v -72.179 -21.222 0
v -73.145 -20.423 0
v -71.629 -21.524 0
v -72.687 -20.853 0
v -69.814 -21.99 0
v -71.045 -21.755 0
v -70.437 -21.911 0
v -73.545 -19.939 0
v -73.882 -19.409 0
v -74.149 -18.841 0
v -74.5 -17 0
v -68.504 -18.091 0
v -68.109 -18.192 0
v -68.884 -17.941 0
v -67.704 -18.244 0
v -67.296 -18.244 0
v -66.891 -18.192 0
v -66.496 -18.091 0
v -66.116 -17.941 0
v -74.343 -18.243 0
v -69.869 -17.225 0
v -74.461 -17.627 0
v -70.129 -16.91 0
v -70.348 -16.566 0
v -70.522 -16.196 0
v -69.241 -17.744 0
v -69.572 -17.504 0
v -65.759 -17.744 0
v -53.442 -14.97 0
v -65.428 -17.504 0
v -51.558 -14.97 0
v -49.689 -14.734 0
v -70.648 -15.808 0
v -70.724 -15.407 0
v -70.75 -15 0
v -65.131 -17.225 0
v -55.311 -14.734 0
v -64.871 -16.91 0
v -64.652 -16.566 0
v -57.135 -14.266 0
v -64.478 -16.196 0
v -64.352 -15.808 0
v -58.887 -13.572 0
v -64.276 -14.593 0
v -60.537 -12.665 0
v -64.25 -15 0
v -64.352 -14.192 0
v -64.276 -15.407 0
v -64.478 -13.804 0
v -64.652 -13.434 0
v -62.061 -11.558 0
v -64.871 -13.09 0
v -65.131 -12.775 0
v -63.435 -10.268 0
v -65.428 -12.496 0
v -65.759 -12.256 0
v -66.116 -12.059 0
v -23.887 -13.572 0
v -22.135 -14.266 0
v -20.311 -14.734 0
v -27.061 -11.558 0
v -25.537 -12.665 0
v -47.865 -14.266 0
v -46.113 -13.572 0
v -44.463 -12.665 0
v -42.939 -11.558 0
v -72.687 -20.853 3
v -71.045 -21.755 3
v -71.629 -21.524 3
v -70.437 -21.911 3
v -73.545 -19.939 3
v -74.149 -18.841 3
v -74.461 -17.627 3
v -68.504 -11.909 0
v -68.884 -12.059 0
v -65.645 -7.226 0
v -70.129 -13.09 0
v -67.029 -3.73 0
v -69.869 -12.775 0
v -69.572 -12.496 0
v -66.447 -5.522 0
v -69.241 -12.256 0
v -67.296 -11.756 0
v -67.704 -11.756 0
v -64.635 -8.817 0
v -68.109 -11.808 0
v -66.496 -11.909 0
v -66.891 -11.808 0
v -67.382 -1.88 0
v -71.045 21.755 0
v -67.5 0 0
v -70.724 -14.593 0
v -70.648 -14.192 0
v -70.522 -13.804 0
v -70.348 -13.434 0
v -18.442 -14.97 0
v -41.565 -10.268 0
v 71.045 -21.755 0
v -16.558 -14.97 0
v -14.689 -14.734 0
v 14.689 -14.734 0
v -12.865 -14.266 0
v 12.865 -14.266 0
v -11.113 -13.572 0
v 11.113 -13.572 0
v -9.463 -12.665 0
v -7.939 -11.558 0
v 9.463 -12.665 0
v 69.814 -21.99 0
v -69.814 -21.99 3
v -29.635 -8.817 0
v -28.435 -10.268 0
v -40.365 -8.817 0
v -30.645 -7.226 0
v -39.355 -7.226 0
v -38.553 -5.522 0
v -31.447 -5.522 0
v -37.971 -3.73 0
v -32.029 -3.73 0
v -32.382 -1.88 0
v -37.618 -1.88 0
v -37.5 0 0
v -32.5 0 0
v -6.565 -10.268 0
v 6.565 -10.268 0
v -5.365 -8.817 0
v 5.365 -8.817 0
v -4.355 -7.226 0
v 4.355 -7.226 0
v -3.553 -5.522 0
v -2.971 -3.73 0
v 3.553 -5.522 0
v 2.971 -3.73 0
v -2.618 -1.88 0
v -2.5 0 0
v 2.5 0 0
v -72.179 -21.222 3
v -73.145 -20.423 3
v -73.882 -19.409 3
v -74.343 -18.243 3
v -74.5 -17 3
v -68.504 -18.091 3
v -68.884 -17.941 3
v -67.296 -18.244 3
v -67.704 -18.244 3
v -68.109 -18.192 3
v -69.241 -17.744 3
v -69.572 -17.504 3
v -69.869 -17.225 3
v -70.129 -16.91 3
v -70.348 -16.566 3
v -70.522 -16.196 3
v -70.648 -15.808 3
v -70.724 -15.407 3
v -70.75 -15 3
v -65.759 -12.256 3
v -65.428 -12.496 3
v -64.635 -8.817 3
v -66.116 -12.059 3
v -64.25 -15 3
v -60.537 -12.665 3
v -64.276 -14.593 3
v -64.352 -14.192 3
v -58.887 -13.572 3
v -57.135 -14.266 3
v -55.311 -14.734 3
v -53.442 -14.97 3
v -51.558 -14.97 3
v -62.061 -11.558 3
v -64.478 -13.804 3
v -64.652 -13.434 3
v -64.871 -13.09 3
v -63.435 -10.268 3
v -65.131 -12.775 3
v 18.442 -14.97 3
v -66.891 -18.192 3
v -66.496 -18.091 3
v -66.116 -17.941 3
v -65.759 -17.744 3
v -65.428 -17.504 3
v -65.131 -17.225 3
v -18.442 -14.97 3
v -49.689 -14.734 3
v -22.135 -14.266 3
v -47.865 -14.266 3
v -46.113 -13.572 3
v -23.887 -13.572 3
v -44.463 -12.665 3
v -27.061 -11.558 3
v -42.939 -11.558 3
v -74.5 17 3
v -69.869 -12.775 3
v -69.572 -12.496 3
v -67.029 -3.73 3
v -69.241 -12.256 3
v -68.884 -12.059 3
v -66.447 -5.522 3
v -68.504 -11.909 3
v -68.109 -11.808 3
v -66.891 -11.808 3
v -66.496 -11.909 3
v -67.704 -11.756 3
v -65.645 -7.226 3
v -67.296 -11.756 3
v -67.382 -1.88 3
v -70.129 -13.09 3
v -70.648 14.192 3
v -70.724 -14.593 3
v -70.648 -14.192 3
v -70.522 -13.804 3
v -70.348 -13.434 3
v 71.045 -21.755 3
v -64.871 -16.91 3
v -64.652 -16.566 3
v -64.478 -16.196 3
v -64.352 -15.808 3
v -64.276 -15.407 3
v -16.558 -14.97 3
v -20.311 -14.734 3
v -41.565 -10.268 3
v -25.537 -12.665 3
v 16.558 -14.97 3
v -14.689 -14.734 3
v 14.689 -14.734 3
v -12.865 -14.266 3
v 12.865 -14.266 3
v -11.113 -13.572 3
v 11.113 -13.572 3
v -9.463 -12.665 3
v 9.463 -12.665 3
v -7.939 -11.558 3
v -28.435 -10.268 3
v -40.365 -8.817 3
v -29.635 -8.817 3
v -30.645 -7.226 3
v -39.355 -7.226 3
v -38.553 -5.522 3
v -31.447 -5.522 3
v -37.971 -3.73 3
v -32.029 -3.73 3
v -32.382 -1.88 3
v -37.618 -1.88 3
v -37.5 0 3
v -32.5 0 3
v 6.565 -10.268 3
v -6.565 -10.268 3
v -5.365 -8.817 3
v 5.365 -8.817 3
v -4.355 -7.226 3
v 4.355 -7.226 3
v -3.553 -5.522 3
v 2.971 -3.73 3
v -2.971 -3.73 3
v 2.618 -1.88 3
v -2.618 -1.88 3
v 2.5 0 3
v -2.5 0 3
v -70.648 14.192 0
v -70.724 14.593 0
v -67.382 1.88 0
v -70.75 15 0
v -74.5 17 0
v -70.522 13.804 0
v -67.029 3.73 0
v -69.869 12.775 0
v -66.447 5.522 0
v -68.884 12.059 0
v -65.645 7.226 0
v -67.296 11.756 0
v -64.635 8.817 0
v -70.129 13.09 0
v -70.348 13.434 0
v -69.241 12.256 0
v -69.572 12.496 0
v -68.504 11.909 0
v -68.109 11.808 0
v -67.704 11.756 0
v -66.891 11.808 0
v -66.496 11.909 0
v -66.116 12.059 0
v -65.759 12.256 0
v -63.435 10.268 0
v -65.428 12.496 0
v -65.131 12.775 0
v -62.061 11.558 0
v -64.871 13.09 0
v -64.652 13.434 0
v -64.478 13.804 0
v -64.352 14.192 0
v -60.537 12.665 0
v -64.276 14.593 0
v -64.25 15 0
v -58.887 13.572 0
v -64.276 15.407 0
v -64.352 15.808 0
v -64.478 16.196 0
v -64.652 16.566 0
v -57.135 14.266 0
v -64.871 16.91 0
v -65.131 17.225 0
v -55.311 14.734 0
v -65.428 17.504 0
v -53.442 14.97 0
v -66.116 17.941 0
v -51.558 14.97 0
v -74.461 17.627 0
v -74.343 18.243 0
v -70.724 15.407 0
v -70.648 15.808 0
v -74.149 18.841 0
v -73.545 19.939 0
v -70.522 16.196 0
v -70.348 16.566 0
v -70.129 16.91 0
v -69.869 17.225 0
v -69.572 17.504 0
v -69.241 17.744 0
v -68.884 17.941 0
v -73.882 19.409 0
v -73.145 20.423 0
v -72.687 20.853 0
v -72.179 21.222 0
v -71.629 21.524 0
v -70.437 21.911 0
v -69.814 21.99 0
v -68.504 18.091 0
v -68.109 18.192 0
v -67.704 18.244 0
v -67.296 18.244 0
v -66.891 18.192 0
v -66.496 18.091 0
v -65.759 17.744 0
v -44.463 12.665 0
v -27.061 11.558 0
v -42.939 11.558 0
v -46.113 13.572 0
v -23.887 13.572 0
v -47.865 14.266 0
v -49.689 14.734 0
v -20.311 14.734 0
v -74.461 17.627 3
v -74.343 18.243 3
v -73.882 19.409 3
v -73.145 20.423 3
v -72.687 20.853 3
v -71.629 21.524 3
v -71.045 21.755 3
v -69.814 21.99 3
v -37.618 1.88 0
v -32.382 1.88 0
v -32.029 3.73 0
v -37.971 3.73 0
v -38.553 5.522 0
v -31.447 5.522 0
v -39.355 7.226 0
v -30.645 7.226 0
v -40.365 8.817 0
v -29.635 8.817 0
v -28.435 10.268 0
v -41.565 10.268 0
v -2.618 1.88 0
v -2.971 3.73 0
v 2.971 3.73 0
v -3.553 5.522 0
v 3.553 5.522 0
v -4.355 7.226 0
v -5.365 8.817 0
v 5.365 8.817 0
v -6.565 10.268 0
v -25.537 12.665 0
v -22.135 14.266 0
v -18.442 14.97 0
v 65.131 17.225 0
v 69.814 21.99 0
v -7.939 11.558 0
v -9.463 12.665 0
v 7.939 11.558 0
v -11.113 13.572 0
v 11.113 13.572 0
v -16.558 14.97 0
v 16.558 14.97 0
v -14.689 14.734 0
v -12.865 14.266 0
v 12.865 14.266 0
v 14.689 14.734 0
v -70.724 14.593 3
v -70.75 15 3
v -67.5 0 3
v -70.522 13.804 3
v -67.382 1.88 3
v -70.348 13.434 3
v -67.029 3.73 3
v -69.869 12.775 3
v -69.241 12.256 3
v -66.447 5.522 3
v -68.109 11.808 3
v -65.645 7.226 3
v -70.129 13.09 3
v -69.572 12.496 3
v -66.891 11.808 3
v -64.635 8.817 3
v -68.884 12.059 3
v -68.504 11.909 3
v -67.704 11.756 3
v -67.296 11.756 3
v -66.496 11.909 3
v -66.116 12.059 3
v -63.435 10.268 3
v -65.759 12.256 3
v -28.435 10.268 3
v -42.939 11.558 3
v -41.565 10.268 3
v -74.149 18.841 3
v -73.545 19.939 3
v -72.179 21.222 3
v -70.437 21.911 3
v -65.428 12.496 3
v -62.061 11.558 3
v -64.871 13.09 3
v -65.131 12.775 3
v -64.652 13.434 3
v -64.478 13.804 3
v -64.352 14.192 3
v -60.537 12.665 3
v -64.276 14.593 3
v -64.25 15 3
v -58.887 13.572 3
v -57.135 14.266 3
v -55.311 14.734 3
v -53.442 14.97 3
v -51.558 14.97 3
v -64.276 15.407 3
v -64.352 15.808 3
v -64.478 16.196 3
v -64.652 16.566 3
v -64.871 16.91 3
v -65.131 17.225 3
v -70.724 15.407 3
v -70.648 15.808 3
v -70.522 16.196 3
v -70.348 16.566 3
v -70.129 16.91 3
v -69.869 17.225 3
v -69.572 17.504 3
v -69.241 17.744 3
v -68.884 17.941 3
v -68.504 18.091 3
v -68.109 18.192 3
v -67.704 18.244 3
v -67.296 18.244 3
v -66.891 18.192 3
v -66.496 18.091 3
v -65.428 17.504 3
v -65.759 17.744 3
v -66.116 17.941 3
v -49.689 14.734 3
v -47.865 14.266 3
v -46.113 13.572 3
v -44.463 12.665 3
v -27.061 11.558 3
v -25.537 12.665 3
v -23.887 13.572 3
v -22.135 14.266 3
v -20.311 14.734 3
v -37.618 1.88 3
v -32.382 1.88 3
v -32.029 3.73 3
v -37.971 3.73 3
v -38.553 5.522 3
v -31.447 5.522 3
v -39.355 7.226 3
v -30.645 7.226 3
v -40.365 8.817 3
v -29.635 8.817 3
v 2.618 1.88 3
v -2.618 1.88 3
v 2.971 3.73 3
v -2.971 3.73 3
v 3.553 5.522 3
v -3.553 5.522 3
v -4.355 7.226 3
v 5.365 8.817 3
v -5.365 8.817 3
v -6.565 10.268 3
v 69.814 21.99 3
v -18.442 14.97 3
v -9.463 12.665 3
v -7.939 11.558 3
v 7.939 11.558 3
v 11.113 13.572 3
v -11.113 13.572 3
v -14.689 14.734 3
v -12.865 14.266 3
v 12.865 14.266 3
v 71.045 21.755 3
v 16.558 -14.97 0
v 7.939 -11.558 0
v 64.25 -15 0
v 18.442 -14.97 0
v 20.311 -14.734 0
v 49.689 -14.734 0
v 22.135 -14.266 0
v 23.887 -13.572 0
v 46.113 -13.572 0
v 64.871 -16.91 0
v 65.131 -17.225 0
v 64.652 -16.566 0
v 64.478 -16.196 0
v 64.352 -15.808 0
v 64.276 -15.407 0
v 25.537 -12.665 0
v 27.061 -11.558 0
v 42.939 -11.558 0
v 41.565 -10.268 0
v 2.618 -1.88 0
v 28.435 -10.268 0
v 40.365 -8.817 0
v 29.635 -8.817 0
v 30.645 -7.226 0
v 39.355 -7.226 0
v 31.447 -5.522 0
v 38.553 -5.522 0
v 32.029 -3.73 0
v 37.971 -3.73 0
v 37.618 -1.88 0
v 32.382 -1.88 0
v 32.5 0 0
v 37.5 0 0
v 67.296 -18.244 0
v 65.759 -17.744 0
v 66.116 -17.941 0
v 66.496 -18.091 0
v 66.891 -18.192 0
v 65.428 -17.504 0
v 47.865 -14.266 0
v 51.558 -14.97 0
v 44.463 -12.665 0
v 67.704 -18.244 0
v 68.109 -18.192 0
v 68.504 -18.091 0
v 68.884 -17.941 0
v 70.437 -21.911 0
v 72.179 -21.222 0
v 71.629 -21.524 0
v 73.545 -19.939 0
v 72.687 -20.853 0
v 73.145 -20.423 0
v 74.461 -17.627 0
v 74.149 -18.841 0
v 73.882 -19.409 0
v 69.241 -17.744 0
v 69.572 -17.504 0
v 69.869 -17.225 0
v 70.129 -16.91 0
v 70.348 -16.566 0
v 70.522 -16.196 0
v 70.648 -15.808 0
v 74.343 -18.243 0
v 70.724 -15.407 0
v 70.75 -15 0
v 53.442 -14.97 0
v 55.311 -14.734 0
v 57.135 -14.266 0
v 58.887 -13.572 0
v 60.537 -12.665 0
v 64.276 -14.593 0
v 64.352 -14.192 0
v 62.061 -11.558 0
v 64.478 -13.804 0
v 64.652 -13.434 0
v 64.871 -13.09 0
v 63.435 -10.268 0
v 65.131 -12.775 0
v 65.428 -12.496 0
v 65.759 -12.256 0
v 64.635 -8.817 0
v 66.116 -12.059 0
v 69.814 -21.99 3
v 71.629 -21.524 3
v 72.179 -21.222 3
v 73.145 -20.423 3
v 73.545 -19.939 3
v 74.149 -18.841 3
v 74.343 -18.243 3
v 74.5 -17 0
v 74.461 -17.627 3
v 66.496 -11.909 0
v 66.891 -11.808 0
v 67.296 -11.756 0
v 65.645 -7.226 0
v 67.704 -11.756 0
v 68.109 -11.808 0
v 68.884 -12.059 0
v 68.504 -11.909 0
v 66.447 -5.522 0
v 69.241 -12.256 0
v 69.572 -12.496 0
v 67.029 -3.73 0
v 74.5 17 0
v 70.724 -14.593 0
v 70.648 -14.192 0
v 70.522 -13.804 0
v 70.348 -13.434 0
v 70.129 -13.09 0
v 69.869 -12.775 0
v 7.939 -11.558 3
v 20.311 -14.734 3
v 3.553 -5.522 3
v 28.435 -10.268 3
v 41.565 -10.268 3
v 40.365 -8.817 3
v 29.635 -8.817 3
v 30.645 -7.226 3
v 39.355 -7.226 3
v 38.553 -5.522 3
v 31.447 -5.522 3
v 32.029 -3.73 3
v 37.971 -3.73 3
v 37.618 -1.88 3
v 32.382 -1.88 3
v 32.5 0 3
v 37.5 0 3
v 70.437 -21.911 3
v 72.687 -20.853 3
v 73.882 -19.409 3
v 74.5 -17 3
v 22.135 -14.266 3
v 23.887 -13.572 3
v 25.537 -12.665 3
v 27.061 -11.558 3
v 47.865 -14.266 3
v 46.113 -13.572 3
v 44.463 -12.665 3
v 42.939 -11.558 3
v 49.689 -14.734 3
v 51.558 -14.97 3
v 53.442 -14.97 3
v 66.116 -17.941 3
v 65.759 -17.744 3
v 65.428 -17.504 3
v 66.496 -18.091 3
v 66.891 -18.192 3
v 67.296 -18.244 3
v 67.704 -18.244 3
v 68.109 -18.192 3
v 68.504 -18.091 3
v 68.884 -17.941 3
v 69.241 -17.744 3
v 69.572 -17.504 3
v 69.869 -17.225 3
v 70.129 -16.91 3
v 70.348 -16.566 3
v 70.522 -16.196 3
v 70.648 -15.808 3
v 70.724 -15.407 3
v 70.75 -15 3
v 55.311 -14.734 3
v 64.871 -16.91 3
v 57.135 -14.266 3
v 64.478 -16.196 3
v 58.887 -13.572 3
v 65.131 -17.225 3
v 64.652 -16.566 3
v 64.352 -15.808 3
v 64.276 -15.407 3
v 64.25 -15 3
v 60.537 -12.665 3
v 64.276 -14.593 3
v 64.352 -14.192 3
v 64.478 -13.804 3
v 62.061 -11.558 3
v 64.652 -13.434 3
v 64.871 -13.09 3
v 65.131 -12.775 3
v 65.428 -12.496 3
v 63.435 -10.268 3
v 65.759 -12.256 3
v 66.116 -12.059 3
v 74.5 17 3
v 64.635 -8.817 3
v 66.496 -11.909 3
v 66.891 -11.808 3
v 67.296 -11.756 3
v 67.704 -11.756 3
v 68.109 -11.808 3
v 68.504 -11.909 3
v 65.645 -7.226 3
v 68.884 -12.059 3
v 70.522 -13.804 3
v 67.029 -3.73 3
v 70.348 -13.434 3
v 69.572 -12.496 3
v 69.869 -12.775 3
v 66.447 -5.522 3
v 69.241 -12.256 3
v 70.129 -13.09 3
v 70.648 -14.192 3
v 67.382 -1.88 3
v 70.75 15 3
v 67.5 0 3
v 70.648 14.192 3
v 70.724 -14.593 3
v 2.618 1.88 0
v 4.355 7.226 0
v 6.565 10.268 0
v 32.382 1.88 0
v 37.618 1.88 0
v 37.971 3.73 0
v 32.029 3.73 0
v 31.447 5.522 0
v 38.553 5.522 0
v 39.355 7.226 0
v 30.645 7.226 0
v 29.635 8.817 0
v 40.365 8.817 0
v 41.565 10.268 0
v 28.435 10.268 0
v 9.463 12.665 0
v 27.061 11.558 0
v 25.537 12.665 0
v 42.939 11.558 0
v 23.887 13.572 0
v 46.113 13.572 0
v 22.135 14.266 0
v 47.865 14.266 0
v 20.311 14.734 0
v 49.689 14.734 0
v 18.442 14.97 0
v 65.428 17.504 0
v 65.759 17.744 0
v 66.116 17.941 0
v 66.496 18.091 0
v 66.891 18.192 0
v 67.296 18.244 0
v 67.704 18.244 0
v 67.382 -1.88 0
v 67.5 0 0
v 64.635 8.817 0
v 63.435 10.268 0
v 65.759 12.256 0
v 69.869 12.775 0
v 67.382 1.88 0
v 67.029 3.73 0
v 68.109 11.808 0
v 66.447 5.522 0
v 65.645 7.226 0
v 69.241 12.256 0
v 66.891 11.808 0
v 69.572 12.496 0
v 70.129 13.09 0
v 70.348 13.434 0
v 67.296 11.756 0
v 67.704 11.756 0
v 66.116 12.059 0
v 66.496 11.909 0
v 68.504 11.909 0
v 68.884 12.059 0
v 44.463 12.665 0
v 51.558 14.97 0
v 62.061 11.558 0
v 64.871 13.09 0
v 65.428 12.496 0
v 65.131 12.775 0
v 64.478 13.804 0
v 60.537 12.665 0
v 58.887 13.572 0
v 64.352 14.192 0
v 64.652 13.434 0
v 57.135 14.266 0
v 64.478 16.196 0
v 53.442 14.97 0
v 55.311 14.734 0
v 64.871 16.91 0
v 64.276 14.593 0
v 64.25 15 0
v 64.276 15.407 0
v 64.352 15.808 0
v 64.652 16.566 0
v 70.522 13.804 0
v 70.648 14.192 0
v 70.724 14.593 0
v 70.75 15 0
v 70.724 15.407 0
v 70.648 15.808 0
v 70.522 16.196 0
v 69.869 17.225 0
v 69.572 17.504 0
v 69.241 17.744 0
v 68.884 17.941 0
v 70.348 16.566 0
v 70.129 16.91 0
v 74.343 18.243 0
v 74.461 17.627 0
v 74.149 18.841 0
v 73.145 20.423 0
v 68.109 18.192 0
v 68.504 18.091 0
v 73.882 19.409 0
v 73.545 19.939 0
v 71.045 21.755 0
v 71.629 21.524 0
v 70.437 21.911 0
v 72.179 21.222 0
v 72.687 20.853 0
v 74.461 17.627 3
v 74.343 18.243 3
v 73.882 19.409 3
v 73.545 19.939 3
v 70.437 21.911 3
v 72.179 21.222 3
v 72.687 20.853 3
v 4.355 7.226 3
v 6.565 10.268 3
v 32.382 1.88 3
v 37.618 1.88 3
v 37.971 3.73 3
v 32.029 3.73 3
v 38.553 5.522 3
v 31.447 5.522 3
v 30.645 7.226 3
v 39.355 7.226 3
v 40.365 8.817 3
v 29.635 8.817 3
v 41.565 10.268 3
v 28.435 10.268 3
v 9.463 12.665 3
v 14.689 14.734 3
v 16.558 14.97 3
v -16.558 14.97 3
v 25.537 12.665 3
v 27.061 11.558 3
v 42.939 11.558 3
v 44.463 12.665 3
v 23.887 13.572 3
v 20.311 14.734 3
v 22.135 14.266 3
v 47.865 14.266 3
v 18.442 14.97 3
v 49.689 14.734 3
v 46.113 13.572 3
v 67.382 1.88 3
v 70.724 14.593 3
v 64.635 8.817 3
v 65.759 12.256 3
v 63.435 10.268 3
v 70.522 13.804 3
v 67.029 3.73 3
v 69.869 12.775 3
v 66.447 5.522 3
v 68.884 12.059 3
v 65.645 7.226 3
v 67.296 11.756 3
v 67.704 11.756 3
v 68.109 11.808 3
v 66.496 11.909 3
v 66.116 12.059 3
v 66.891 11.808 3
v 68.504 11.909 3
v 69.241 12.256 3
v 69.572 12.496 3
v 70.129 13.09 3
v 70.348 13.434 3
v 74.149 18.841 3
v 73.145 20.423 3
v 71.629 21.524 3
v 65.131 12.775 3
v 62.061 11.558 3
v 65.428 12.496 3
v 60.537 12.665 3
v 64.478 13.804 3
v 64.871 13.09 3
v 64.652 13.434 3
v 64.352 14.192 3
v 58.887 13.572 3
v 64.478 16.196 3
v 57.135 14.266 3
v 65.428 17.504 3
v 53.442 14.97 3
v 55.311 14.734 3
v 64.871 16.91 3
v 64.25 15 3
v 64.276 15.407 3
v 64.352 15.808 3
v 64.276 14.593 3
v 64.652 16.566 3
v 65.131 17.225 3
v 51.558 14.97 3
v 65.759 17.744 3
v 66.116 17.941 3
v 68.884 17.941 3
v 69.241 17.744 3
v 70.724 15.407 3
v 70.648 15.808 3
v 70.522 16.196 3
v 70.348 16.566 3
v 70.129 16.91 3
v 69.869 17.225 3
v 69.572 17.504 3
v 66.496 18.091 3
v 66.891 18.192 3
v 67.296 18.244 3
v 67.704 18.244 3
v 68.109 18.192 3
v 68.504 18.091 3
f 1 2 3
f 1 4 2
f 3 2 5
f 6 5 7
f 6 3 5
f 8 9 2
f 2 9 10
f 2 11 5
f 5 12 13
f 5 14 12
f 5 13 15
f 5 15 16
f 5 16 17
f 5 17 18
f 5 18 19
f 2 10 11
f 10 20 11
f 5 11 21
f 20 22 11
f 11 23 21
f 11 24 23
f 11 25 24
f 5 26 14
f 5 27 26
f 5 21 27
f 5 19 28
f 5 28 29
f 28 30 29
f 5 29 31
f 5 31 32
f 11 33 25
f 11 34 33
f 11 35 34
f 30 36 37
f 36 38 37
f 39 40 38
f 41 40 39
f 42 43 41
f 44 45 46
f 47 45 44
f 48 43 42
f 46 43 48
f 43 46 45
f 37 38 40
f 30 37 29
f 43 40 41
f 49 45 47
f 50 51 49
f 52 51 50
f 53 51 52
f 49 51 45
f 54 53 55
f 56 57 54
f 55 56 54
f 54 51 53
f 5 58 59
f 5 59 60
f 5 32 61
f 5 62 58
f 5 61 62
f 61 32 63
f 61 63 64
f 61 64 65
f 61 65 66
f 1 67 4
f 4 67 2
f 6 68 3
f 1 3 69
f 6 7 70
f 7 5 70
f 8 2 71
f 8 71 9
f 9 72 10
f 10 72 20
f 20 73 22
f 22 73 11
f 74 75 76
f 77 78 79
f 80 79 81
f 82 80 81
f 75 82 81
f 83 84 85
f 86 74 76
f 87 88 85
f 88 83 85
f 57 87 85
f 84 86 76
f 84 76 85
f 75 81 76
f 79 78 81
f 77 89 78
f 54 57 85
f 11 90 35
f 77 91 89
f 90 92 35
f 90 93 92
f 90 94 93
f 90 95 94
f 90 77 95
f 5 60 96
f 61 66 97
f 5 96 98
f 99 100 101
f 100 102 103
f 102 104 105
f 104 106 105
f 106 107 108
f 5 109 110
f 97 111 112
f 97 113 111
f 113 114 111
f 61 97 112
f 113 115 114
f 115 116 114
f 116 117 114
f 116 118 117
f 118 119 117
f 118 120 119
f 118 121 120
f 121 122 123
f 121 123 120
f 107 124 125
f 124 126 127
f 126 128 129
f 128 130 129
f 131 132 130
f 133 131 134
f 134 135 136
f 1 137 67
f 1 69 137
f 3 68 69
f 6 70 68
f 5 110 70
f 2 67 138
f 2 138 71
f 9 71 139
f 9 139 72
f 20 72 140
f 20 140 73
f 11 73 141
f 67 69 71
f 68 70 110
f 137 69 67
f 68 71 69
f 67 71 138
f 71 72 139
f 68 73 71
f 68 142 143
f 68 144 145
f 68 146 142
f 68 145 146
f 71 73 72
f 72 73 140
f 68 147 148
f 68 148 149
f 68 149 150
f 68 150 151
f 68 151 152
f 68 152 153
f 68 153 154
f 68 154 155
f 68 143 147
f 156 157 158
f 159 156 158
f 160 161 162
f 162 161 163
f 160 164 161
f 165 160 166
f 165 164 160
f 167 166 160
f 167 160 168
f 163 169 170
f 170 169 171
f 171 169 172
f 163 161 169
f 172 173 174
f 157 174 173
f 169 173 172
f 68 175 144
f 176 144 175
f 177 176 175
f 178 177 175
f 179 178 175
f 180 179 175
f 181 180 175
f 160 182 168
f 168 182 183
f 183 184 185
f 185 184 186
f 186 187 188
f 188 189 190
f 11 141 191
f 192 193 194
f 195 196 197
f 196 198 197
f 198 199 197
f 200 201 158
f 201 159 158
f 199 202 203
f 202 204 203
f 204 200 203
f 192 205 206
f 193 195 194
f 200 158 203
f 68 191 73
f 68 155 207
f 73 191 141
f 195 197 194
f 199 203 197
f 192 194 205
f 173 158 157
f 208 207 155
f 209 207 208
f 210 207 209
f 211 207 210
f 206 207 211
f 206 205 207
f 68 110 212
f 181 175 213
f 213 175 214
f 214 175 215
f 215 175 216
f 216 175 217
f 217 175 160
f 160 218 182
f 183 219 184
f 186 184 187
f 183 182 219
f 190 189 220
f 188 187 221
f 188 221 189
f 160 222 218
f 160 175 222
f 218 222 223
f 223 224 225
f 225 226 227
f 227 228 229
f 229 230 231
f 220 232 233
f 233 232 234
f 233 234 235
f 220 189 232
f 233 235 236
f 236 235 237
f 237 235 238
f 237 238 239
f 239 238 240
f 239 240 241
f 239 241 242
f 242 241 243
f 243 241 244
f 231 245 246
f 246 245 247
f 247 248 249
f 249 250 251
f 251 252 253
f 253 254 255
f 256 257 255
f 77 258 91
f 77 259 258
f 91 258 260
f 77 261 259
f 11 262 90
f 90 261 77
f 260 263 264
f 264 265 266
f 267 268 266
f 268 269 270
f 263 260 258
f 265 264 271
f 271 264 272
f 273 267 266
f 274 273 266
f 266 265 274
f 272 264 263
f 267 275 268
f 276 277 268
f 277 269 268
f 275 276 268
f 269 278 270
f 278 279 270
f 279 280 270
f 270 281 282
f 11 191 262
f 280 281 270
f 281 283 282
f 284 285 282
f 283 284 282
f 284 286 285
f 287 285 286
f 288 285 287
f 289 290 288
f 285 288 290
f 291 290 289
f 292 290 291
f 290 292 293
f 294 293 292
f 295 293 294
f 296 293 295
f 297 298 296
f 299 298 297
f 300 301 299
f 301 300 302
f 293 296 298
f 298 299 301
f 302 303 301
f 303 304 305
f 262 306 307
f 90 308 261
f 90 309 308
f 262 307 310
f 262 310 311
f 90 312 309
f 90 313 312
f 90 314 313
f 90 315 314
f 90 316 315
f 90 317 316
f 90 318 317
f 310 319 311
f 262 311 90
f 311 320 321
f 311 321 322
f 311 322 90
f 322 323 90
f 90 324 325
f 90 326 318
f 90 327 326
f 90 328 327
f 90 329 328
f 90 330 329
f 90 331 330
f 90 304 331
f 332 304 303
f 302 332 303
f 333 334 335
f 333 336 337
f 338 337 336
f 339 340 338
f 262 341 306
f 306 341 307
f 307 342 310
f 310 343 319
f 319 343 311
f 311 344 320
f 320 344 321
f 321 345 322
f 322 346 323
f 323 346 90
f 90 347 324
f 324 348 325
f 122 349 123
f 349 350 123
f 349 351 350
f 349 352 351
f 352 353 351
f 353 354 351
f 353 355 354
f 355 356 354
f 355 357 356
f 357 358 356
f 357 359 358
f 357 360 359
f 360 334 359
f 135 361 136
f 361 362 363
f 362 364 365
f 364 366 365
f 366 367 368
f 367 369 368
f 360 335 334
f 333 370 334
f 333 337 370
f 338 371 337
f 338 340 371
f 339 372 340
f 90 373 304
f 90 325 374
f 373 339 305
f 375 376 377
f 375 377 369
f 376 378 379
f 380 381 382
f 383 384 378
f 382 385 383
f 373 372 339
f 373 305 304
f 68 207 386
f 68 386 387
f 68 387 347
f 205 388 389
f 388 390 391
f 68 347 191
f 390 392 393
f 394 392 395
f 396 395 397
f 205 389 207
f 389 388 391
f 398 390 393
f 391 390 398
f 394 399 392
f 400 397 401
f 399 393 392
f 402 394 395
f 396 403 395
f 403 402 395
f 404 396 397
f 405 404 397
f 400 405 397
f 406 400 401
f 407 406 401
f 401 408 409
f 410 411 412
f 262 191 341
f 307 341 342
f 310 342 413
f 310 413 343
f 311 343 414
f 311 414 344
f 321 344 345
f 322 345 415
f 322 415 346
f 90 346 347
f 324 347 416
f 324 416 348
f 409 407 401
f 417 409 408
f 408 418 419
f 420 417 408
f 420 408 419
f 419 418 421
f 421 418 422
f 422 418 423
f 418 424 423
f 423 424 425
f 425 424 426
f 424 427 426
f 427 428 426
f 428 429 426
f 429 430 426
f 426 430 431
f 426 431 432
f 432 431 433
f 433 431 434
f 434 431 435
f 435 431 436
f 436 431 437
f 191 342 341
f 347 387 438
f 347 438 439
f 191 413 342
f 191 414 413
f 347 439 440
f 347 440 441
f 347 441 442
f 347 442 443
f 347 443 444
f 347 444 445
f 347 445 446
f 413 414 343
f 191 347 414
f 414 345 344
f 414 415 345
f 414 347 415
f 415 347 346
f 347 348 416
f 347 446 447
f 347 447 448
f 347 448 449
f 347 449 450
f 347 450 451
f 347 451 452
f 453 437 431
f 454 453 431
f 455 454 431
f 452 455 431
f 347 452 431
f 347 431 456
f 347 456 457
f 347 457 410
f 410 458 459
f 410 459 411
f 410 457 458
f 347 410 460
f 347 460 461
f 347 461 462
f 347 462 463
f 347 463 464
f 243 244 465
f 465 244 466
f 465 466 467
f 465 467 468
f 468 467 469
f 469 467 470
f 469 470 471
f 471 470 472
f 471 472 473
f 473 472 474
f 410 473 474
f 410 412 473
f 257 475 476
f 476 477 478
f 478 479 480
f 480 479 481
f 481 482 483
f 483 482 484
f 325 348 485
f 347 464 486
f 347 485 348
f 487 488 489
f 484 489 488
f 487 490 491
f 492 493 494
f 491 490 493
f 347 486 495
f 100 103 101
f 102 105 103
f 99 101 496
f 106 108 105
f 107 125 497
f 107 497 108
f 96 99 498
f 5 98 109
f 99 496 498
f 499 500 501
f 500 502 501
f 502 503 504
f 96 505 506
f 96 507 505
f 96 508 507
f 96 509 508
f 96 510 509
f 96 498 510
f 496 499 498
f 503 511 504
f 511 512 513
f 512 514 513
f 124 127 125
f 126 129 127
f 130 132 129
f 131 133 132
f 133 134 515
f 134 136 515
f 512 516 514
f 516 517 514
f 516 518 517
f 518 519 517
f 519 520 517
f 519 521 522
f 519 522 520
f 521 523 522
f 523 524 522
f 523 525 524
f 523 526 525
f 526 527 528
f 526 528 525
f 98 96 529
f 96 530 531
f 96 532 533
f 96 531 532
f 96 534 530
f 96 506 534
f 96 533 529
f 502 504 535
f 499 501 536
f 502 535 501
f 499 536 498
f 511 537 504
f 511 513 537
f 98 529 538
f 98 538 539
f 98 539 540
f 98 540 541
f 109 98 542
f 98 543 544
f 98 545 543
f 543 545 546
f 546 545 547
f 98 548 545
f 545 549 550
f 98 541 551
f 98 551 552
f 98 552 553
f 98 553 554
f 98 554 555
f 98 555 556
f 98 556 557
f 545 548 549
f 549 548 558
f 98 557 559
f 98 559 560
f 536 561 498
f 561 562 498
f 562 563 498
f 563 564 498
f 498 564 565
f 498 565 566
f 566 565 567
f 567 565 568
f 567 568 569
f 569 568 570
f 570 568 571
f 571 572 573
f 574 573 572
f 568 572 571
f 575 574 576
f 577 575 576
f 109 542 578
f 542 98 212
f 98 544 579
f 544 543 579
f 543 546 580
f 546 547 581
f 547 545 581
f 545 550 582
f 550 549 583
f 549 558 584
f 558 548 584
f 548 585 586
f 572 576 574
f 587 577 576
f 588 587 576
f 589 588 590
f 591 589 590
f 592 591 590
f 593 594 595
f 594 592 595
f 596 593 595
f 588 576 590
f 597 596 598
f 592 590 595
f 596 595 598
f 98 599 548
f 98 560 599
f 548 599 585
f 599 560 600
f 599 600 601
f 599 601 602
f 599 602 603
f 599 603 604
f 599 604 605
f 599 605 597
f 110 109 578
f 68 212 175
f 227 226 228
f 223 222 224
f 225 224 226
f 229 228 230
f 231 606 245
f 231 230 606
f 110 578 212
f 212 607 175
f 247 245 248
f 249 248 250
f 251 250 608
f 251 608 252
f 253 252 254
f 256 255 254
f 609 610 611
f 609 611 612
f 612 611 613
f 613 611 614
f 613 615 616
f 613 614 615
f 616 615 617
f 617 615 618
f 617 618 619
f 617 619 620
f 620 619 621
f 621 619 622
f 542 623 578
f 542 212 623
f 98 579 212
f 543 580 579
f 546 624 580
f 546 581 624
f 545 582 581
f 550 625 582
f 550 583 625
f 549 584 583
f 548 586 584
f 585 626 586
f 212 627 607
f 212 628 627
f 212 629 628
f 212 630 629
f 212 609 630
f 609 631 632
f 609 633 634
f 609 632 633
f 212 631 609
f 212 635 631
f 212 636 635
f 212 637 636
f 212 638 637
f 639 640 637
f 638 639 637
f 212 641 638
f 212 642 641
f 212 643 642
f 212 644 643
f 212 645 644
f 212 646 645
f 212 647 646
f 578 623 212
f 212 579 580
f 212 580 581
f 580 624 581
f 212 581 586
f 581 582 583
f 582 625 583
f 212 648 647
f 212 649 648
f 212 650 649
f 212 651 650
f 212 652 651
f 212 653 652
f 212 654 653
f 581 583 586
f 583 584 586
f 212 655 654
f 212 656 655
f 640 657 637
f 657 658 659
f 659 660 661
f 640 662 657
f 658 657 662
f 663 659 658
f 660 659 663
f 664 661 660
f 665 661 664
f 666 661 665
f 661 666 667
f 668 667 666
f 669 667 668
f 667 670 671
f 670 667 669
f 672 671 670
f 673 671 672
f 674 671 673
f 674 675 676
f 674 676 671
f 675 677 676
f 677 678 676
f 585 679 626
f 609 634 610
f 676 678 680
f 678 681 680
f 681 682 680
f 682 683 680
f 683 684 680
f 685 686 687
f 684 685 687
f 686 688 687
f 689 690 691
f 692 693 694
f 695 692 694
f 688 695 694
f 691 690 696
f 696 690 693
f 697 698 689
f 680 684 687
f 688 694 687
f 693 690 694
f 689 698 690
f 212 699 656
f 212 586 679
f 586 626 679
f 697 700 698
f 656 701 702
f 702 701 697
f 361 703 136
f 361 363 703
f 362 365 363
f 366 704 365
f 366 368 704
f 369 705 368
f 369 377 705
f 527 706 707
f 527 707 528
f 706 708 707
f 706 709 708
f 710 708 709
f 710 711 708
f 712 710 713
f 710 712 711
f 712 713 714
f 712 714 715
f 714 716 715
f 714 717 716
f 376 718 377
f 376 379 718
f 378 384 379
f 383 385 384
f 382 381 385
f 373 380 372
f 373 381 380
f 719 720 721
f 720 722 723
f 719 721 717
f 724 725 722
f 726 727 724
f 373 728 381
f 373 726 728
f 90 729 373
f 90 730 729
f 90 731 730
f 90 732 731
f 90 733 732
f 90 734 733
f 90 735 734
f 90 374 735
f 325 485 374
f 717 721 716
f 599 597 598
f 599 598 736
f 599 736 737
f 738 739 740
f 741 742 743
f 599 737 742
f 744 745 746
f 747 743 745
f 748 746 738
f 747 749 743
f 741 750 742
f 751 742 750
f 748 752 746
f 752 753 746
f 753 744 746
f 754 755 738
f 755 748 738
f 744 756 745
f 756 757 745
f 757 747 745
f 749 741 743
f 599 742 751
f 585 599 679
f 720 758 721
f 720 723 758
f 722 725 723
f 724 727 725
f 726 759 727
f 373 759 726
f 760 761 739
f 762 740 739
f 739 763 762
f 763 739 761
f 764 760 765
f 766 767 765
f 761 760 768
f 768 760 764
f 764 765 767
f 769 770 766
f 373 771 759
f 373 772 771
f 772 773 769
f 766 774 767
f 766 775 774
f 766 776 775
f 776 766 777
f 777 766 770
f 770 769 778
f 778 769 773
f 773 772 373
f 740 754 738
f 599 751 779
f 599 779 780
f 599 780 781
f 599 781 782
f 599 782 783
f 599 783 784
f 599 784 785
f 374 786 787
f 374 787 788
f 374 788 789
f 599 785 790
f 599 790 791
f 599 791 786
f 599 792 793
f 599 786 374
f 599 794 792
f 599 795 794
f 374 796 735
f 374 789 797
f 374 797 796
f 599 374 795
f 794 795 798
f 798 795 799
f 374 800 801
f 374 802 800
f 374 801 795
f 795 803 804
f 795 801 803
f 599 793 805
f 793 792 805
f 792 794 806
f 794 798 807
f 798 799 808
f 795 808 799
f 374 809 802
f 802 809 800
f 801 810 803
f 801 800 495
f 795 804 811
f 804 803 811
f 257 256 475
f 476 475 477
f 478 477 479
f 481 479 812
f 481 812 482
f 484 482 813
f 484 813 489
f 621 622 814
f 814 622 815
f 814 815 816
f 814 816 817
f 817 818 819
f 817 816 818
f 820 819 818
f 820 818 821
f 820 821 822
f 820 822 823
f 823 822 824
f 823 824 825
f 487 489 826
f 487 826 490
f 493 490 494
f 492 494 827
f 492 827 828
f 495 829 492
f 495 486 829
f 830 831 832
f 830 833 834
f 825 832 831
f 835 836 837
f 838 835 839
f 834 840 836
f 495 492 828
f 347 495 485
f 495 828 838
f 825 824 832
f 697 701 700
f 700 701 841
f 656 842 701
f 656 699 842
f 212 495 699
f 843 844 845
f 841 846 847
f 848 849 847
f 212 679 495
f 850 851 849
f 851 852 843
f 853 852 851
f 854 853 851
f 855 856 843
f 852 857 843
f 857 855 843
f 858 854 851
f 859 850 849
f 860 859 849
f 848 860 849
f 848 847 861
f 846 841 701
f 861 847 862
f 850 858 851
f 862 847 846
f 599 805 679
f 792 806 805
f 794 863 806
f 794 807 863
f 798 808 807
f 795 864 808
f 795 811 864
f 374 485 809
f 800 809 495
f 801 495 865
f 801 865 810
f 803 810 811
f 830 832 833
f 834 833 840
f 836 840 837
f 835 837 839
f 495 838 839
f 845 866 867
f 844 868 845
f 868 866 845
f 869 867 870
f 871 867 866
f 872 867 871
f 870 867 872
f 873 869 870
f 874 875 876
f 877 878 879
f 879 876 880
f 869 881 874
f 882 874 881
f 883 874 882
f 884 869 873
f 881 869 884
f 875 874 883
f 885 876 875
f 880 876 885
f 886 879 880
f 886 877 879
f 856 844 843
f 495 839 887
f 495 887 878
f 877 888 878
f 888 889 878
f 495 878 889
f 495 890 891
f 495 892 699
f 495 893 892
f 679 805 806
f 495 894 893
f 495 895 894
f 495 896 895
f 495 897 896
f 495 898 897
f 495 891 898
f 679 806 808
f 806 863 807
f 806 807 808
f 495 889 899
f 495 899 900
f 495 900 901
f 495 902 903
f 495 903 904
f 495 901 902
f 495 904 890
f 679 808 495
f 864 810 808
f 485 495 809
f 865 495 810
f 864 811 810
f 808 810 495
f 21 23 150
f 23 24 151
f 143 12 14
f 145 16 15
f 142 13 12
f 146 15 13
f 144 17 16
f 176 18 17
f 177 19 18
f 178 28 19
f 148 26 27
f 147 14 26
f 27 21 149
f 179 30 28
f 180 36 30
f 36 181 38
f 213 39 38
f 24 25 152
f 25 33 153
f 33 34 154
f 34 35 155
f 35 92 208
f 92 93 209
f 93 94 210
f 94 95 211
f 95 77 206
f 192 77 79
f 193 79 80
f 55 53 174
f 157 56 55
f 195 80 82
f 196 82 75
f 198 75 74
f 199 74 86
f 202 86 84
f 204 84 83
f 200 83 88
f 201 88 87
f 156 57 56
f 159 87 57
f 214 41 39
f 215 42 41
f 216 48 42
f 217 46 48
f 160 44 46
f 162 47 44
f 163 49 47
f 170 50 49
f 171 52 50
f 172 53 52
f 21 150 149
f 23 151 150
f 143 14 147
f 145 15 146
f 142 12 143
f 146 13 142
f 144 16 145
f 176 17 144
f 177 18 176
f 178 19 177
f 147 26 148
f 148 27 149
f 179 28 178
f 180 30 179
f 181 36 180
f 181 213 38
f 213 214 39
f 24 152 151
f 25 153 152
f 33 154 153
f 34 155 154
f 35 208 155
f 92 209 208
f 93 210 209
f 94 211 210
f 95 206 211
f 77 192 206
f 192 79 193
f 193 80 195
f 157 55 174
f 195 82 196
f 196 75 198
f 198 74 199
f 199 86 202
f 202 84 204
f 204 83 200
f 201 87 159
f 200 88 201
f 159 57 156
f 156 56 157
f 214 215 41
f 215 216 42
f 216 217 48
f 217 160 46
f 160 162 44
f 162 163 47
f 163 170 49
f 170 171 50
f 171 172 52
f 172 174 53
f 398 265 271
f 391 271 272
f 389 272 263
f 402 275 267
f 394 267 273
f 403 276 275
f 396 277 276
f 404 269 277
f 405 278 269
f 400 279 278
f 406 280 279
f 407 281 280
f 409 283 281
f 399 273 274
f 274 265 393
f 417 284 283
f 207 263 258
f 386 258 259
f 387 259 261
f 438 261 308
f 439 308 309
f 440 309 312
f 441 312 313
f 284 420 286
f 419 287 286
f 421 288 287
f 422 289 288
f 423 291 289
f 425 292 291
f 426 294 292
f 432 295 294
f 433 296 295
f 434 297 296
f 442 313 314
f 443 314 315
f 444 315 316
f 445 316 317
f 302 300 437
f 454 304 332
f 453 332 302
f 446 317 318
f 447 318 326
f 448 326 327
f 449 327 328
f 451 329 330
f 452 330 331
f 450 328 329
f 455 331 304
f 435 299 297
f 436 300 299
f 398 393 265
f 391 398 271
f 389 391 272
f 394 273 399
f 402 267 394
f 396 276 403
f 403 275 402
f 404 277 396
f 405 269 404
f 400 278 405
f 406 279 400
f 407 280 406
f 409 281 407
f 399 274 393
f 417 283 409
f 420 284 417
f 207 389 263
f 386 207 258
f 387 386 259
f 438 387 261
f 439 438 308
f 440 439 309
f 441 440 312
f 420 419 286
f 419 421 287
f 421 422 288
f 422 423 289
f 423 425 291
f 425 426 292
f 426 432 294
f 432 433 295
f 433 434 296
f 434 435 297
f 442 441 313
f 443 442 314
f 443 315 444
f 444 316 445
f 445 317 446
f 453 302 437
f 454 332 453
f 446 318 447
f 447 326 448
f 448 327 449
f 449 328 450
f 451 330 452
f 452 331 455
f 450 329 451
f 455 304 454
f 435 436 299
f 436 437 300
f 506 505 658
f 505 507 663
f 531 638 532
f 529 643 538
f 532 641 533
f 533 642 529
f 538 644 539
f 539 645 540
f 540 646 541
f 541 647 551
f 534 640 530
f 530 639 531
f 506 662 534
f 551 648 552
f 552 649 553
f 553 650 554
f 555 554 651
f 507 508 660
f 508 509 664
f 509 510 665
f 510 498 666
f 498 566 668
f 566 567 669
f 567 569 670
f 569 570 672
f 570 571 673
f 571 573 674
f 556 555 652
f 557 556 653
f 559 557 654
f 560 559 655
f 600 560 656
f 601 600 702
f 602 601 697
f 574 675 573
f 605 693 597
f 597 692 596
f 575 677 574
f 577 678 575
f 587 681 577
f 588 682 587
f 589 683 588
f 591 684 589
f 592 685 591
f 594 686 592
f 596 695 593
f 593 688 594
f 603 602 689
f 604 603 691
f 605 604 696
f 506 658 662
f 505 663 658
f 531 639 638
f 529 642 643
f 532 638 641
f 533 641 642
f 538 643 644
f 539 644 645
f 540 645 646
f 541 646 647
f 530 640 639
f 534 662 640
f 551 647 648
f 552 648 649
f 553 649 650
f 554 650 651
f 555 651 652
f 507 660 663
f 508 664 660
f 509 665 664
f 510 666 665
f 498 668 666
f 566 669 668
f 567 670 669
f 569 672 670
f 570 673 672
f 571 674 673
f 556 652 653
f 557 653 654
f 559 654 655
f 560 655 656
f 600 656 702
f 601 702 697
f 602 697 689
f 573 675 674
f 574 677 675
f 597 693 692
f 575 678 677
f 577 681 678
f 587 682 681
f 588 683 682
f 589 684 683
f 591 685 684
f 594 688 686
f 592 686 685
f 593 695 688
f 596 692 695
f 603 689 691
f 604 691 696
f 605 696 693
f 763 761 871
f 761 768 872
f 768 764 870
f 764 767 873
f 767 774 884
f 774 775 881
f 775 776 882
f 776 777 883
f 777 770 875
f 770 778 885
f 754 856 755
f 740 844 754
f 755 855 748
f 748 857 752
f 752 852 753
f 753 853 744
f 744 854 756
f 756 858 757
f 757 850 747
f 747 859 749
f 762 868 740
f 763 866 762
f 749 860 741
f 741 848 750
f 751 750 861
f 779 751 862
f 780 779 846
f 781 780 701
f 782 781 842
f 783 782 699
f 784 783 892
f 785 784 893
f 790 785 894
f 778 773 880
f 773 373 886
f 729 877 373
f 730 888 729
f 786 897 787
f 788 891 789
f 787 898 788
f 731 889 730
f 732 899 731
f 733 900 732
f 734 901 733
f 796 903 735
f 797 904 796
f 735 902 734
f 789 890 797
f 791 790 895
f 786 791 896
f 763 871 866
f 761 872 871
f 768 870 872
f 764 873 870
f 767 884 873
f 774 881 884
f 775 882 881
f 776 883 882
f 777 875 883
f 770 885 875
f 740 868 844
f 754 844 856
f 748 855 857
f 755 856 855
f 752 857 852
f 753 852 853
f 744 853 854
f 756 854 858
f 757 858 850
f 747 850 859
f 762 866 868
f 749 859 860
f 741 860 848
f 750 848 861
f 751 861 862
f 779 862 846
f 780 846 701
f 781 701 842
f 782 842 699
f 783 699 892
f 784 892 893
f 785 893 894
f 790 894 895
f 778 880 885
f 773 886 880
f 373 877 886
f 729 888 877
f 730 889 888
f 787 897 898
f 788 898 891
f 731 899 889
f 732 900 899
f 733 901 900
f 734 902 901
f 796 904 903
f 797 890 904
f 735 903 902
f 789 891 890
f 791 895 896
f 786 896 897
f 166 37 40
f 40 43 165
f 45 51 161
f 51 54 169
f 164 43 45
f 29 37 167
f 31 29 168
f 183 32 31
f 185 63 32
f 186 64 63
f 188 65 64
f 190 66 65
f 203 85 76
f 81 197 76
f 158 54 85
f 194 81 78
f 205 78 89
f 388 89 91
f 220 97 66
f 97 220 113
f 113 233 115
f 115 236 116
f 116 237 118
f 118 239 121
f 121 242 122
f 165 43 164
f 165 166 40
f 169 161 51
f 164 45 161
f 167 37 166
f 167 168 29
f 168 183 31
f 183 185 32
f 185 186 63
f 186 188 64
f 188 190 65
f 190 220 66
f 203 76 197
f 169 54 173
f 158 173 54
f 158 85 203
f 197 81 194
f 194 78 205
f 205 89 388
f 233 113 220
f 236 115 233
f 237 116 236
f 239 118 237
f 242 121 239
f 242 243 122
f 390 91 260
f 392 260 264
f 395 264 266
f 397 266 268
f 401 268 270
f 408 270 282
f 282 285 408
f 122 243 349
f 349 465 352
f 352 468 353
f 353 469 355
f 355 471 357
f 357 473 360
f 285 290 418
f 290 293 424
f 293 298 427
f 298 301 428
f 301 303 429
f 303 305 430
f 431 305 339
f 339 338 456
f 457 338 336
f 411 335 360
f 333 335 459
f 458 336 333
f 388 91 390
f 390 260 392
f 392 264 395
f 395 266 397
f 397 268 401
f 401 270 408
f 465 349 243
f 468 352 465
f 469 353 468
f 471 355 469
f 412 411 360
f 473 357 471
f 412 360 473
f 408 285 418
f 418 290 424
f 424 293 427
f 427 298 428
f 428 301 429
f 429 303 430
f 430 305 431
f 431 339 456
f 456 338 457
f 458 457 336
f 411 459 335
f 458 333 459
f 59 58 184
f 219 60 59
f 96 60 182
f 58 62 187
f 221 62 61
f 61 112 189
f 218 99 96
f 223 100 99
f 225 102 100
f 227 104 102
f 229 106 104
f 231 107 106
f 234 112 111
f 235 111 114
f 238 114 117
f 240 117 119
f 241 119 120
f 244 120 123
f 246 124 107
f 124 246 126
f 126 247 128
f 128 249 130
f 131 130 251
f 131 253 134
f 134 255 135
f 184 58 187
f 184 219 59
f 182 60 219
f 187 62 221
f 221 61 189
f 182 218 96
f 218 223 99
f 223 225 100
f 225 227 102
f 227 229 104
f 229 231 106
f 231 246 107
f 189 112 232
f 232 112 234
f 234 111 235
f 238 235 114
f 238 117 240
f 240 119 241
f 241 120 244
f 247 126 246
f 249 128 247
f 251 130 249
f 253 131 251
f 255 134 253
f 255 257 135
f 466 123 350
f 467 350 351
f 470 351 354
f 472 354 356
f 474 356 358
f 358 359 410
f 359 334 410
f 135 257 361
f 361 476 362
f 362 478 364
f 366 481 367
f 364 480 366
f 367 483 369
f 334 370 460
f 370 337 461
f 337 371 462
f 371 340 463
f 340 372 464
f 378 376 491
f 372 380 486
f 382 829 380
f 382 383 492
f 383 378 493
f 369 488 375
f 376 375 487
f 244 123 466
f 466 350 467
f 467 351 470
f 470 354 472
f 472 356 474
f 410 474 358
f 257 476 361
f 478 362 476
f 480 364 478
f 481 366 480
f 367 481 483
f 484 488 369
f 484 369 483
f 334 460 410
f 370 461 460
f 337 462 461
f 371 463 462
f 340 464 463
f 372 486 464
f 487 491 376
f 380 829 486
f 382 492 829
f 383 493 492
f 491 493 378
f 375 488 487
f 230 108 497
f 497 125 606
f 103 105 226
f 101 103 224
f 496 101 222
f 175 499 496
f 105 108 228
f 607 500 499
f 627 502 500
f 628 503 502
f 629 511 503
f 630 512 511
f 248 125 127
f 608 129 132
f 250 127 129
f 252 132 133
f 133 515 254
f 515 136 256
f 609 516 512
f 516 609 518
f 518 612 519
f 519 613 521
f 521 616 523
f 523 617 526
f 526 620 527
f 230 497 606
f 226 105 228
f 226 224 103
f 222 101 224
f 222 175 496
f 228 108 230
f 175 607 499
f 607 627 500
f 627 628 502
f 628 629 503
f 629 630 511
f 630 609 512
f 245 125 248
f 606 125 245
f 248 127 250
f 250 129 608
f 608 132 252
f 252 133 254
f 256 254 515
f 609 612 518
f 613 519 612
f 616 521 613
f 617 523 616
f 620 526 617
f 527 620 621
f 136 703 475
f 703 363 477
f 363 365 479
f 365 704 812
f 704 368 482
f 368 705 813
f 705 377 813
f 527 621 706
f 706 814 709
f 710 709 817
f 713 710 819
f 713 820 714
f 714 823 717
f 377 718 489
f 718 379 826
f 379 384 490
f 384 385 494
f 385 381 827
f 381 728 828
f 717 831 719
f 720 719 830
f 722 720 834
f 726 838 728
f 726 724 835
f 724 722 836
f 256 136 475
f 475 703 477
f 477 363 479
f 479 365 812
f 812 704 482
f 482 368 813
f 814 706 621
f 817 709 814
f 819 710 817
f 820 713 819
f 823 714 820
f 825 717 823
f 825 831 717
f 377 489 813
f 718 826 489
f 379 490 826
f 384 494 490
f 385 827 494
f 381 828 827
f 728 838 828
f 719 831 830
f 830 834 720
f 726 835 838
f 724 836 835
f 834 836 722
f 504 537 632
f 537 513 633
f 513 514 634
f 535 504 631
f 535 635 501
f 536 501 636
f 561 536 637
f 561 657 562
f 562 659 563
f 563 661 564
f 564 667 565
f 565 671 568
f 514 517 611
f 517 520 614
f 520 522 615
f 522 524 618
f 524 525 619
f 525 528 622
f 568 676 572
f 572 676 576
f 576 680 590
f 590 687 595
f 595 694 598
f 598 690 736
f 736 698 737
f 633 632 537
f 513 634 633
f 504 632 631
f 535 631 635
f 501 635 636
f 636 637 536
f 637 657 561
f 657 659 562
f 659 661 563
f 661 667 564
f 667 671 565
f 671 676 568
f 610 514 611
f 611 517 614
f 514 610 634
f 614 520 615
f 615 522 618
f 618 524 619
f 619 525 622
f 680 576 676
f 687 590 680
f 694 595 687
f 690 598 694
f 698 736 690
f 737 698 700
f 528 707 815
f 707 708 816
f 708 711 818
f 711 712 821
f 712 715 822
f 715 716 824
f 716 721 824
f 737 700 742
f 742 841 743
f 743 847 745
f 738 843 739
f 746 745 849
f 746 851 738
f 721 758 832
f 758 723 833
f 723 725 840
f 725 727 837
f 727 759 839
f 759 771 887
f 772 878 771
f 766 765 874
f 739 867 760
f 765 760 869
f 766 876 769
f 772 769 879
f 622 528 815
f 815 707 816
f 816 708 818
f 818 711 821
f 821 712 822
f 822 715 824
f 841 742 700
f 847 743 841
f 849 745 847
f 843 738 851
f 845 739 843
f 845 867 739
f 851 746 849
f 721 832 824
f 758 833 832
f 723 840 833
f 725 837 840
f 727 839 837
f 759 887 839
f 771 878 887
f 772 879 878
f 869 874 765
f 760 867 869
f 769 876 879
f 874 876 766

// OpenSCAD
$fn = 50;

difference() {
	union() {
		hull() {
			translate(v = [-69.5, 17.0, 0]) {
				cylinder(h = 3, r = 5);
			}
			translate(v = [69.5, 17.0, 0]) {
				cylinder(h = 3, r = 5);
			}
			translate(v = [-69.5, -17.0, 0]) {
				cylinder(h = 3, r = 5);
			}
			translate(v = [69.5, -17.0, 0]) {
				cylinder(h = 3, r = 5);
			}
		}
	}
	union() {
		translate(v = [-67.5, -15.0, -100.0]) {
			cylinder(h = 200, r = 3.25);
		}
		translate(v = [-67.5, 15.0, -100.0]) {
			cylinder(h = 200, r = 3.25);
		}
		translate(v = [67.5, -15.0, -100.0]) {
			cylinder(h = 200, r = 3.25);
		}
		translate(v = [67.5, 15.0, -100.0]) {
			cylinder(h = 200, r = 3.25);
		}
		translate(v = [-67.5, -15.0, -100.0]) {
			cylinder(h = 200, r = 1.8);
		}
		translate(v = [-67.5, 15.0, -100.0]) {
			cylinder(h = 200, r = 1.8);
		}
		translate(v = [67.5, -15.0, -100.0]) {
			cylinder(h = 200, r = 1.8);
		}
		translate(v = [67.5, 15.0, -100.0]) {
			cylinder(h = 200, r = 1.8);
		}
		translate(v = [-52.5, 0, 0.0]) {
			cylinder(h = 3, r = 15.0);
		}
		translate(v = [-17.5, 0, 0.0]) {
			cylinder(h = 3, r = 15.0);
		}
		translate(v = [17.5, 0, 0.0]) {
			cylinder(h = 3, r = 15.0);
		}
		translate(v = [52.5, 0, 0.0]) {
			cylinder(h = 3, r = 15.0);
		}
	}
}
